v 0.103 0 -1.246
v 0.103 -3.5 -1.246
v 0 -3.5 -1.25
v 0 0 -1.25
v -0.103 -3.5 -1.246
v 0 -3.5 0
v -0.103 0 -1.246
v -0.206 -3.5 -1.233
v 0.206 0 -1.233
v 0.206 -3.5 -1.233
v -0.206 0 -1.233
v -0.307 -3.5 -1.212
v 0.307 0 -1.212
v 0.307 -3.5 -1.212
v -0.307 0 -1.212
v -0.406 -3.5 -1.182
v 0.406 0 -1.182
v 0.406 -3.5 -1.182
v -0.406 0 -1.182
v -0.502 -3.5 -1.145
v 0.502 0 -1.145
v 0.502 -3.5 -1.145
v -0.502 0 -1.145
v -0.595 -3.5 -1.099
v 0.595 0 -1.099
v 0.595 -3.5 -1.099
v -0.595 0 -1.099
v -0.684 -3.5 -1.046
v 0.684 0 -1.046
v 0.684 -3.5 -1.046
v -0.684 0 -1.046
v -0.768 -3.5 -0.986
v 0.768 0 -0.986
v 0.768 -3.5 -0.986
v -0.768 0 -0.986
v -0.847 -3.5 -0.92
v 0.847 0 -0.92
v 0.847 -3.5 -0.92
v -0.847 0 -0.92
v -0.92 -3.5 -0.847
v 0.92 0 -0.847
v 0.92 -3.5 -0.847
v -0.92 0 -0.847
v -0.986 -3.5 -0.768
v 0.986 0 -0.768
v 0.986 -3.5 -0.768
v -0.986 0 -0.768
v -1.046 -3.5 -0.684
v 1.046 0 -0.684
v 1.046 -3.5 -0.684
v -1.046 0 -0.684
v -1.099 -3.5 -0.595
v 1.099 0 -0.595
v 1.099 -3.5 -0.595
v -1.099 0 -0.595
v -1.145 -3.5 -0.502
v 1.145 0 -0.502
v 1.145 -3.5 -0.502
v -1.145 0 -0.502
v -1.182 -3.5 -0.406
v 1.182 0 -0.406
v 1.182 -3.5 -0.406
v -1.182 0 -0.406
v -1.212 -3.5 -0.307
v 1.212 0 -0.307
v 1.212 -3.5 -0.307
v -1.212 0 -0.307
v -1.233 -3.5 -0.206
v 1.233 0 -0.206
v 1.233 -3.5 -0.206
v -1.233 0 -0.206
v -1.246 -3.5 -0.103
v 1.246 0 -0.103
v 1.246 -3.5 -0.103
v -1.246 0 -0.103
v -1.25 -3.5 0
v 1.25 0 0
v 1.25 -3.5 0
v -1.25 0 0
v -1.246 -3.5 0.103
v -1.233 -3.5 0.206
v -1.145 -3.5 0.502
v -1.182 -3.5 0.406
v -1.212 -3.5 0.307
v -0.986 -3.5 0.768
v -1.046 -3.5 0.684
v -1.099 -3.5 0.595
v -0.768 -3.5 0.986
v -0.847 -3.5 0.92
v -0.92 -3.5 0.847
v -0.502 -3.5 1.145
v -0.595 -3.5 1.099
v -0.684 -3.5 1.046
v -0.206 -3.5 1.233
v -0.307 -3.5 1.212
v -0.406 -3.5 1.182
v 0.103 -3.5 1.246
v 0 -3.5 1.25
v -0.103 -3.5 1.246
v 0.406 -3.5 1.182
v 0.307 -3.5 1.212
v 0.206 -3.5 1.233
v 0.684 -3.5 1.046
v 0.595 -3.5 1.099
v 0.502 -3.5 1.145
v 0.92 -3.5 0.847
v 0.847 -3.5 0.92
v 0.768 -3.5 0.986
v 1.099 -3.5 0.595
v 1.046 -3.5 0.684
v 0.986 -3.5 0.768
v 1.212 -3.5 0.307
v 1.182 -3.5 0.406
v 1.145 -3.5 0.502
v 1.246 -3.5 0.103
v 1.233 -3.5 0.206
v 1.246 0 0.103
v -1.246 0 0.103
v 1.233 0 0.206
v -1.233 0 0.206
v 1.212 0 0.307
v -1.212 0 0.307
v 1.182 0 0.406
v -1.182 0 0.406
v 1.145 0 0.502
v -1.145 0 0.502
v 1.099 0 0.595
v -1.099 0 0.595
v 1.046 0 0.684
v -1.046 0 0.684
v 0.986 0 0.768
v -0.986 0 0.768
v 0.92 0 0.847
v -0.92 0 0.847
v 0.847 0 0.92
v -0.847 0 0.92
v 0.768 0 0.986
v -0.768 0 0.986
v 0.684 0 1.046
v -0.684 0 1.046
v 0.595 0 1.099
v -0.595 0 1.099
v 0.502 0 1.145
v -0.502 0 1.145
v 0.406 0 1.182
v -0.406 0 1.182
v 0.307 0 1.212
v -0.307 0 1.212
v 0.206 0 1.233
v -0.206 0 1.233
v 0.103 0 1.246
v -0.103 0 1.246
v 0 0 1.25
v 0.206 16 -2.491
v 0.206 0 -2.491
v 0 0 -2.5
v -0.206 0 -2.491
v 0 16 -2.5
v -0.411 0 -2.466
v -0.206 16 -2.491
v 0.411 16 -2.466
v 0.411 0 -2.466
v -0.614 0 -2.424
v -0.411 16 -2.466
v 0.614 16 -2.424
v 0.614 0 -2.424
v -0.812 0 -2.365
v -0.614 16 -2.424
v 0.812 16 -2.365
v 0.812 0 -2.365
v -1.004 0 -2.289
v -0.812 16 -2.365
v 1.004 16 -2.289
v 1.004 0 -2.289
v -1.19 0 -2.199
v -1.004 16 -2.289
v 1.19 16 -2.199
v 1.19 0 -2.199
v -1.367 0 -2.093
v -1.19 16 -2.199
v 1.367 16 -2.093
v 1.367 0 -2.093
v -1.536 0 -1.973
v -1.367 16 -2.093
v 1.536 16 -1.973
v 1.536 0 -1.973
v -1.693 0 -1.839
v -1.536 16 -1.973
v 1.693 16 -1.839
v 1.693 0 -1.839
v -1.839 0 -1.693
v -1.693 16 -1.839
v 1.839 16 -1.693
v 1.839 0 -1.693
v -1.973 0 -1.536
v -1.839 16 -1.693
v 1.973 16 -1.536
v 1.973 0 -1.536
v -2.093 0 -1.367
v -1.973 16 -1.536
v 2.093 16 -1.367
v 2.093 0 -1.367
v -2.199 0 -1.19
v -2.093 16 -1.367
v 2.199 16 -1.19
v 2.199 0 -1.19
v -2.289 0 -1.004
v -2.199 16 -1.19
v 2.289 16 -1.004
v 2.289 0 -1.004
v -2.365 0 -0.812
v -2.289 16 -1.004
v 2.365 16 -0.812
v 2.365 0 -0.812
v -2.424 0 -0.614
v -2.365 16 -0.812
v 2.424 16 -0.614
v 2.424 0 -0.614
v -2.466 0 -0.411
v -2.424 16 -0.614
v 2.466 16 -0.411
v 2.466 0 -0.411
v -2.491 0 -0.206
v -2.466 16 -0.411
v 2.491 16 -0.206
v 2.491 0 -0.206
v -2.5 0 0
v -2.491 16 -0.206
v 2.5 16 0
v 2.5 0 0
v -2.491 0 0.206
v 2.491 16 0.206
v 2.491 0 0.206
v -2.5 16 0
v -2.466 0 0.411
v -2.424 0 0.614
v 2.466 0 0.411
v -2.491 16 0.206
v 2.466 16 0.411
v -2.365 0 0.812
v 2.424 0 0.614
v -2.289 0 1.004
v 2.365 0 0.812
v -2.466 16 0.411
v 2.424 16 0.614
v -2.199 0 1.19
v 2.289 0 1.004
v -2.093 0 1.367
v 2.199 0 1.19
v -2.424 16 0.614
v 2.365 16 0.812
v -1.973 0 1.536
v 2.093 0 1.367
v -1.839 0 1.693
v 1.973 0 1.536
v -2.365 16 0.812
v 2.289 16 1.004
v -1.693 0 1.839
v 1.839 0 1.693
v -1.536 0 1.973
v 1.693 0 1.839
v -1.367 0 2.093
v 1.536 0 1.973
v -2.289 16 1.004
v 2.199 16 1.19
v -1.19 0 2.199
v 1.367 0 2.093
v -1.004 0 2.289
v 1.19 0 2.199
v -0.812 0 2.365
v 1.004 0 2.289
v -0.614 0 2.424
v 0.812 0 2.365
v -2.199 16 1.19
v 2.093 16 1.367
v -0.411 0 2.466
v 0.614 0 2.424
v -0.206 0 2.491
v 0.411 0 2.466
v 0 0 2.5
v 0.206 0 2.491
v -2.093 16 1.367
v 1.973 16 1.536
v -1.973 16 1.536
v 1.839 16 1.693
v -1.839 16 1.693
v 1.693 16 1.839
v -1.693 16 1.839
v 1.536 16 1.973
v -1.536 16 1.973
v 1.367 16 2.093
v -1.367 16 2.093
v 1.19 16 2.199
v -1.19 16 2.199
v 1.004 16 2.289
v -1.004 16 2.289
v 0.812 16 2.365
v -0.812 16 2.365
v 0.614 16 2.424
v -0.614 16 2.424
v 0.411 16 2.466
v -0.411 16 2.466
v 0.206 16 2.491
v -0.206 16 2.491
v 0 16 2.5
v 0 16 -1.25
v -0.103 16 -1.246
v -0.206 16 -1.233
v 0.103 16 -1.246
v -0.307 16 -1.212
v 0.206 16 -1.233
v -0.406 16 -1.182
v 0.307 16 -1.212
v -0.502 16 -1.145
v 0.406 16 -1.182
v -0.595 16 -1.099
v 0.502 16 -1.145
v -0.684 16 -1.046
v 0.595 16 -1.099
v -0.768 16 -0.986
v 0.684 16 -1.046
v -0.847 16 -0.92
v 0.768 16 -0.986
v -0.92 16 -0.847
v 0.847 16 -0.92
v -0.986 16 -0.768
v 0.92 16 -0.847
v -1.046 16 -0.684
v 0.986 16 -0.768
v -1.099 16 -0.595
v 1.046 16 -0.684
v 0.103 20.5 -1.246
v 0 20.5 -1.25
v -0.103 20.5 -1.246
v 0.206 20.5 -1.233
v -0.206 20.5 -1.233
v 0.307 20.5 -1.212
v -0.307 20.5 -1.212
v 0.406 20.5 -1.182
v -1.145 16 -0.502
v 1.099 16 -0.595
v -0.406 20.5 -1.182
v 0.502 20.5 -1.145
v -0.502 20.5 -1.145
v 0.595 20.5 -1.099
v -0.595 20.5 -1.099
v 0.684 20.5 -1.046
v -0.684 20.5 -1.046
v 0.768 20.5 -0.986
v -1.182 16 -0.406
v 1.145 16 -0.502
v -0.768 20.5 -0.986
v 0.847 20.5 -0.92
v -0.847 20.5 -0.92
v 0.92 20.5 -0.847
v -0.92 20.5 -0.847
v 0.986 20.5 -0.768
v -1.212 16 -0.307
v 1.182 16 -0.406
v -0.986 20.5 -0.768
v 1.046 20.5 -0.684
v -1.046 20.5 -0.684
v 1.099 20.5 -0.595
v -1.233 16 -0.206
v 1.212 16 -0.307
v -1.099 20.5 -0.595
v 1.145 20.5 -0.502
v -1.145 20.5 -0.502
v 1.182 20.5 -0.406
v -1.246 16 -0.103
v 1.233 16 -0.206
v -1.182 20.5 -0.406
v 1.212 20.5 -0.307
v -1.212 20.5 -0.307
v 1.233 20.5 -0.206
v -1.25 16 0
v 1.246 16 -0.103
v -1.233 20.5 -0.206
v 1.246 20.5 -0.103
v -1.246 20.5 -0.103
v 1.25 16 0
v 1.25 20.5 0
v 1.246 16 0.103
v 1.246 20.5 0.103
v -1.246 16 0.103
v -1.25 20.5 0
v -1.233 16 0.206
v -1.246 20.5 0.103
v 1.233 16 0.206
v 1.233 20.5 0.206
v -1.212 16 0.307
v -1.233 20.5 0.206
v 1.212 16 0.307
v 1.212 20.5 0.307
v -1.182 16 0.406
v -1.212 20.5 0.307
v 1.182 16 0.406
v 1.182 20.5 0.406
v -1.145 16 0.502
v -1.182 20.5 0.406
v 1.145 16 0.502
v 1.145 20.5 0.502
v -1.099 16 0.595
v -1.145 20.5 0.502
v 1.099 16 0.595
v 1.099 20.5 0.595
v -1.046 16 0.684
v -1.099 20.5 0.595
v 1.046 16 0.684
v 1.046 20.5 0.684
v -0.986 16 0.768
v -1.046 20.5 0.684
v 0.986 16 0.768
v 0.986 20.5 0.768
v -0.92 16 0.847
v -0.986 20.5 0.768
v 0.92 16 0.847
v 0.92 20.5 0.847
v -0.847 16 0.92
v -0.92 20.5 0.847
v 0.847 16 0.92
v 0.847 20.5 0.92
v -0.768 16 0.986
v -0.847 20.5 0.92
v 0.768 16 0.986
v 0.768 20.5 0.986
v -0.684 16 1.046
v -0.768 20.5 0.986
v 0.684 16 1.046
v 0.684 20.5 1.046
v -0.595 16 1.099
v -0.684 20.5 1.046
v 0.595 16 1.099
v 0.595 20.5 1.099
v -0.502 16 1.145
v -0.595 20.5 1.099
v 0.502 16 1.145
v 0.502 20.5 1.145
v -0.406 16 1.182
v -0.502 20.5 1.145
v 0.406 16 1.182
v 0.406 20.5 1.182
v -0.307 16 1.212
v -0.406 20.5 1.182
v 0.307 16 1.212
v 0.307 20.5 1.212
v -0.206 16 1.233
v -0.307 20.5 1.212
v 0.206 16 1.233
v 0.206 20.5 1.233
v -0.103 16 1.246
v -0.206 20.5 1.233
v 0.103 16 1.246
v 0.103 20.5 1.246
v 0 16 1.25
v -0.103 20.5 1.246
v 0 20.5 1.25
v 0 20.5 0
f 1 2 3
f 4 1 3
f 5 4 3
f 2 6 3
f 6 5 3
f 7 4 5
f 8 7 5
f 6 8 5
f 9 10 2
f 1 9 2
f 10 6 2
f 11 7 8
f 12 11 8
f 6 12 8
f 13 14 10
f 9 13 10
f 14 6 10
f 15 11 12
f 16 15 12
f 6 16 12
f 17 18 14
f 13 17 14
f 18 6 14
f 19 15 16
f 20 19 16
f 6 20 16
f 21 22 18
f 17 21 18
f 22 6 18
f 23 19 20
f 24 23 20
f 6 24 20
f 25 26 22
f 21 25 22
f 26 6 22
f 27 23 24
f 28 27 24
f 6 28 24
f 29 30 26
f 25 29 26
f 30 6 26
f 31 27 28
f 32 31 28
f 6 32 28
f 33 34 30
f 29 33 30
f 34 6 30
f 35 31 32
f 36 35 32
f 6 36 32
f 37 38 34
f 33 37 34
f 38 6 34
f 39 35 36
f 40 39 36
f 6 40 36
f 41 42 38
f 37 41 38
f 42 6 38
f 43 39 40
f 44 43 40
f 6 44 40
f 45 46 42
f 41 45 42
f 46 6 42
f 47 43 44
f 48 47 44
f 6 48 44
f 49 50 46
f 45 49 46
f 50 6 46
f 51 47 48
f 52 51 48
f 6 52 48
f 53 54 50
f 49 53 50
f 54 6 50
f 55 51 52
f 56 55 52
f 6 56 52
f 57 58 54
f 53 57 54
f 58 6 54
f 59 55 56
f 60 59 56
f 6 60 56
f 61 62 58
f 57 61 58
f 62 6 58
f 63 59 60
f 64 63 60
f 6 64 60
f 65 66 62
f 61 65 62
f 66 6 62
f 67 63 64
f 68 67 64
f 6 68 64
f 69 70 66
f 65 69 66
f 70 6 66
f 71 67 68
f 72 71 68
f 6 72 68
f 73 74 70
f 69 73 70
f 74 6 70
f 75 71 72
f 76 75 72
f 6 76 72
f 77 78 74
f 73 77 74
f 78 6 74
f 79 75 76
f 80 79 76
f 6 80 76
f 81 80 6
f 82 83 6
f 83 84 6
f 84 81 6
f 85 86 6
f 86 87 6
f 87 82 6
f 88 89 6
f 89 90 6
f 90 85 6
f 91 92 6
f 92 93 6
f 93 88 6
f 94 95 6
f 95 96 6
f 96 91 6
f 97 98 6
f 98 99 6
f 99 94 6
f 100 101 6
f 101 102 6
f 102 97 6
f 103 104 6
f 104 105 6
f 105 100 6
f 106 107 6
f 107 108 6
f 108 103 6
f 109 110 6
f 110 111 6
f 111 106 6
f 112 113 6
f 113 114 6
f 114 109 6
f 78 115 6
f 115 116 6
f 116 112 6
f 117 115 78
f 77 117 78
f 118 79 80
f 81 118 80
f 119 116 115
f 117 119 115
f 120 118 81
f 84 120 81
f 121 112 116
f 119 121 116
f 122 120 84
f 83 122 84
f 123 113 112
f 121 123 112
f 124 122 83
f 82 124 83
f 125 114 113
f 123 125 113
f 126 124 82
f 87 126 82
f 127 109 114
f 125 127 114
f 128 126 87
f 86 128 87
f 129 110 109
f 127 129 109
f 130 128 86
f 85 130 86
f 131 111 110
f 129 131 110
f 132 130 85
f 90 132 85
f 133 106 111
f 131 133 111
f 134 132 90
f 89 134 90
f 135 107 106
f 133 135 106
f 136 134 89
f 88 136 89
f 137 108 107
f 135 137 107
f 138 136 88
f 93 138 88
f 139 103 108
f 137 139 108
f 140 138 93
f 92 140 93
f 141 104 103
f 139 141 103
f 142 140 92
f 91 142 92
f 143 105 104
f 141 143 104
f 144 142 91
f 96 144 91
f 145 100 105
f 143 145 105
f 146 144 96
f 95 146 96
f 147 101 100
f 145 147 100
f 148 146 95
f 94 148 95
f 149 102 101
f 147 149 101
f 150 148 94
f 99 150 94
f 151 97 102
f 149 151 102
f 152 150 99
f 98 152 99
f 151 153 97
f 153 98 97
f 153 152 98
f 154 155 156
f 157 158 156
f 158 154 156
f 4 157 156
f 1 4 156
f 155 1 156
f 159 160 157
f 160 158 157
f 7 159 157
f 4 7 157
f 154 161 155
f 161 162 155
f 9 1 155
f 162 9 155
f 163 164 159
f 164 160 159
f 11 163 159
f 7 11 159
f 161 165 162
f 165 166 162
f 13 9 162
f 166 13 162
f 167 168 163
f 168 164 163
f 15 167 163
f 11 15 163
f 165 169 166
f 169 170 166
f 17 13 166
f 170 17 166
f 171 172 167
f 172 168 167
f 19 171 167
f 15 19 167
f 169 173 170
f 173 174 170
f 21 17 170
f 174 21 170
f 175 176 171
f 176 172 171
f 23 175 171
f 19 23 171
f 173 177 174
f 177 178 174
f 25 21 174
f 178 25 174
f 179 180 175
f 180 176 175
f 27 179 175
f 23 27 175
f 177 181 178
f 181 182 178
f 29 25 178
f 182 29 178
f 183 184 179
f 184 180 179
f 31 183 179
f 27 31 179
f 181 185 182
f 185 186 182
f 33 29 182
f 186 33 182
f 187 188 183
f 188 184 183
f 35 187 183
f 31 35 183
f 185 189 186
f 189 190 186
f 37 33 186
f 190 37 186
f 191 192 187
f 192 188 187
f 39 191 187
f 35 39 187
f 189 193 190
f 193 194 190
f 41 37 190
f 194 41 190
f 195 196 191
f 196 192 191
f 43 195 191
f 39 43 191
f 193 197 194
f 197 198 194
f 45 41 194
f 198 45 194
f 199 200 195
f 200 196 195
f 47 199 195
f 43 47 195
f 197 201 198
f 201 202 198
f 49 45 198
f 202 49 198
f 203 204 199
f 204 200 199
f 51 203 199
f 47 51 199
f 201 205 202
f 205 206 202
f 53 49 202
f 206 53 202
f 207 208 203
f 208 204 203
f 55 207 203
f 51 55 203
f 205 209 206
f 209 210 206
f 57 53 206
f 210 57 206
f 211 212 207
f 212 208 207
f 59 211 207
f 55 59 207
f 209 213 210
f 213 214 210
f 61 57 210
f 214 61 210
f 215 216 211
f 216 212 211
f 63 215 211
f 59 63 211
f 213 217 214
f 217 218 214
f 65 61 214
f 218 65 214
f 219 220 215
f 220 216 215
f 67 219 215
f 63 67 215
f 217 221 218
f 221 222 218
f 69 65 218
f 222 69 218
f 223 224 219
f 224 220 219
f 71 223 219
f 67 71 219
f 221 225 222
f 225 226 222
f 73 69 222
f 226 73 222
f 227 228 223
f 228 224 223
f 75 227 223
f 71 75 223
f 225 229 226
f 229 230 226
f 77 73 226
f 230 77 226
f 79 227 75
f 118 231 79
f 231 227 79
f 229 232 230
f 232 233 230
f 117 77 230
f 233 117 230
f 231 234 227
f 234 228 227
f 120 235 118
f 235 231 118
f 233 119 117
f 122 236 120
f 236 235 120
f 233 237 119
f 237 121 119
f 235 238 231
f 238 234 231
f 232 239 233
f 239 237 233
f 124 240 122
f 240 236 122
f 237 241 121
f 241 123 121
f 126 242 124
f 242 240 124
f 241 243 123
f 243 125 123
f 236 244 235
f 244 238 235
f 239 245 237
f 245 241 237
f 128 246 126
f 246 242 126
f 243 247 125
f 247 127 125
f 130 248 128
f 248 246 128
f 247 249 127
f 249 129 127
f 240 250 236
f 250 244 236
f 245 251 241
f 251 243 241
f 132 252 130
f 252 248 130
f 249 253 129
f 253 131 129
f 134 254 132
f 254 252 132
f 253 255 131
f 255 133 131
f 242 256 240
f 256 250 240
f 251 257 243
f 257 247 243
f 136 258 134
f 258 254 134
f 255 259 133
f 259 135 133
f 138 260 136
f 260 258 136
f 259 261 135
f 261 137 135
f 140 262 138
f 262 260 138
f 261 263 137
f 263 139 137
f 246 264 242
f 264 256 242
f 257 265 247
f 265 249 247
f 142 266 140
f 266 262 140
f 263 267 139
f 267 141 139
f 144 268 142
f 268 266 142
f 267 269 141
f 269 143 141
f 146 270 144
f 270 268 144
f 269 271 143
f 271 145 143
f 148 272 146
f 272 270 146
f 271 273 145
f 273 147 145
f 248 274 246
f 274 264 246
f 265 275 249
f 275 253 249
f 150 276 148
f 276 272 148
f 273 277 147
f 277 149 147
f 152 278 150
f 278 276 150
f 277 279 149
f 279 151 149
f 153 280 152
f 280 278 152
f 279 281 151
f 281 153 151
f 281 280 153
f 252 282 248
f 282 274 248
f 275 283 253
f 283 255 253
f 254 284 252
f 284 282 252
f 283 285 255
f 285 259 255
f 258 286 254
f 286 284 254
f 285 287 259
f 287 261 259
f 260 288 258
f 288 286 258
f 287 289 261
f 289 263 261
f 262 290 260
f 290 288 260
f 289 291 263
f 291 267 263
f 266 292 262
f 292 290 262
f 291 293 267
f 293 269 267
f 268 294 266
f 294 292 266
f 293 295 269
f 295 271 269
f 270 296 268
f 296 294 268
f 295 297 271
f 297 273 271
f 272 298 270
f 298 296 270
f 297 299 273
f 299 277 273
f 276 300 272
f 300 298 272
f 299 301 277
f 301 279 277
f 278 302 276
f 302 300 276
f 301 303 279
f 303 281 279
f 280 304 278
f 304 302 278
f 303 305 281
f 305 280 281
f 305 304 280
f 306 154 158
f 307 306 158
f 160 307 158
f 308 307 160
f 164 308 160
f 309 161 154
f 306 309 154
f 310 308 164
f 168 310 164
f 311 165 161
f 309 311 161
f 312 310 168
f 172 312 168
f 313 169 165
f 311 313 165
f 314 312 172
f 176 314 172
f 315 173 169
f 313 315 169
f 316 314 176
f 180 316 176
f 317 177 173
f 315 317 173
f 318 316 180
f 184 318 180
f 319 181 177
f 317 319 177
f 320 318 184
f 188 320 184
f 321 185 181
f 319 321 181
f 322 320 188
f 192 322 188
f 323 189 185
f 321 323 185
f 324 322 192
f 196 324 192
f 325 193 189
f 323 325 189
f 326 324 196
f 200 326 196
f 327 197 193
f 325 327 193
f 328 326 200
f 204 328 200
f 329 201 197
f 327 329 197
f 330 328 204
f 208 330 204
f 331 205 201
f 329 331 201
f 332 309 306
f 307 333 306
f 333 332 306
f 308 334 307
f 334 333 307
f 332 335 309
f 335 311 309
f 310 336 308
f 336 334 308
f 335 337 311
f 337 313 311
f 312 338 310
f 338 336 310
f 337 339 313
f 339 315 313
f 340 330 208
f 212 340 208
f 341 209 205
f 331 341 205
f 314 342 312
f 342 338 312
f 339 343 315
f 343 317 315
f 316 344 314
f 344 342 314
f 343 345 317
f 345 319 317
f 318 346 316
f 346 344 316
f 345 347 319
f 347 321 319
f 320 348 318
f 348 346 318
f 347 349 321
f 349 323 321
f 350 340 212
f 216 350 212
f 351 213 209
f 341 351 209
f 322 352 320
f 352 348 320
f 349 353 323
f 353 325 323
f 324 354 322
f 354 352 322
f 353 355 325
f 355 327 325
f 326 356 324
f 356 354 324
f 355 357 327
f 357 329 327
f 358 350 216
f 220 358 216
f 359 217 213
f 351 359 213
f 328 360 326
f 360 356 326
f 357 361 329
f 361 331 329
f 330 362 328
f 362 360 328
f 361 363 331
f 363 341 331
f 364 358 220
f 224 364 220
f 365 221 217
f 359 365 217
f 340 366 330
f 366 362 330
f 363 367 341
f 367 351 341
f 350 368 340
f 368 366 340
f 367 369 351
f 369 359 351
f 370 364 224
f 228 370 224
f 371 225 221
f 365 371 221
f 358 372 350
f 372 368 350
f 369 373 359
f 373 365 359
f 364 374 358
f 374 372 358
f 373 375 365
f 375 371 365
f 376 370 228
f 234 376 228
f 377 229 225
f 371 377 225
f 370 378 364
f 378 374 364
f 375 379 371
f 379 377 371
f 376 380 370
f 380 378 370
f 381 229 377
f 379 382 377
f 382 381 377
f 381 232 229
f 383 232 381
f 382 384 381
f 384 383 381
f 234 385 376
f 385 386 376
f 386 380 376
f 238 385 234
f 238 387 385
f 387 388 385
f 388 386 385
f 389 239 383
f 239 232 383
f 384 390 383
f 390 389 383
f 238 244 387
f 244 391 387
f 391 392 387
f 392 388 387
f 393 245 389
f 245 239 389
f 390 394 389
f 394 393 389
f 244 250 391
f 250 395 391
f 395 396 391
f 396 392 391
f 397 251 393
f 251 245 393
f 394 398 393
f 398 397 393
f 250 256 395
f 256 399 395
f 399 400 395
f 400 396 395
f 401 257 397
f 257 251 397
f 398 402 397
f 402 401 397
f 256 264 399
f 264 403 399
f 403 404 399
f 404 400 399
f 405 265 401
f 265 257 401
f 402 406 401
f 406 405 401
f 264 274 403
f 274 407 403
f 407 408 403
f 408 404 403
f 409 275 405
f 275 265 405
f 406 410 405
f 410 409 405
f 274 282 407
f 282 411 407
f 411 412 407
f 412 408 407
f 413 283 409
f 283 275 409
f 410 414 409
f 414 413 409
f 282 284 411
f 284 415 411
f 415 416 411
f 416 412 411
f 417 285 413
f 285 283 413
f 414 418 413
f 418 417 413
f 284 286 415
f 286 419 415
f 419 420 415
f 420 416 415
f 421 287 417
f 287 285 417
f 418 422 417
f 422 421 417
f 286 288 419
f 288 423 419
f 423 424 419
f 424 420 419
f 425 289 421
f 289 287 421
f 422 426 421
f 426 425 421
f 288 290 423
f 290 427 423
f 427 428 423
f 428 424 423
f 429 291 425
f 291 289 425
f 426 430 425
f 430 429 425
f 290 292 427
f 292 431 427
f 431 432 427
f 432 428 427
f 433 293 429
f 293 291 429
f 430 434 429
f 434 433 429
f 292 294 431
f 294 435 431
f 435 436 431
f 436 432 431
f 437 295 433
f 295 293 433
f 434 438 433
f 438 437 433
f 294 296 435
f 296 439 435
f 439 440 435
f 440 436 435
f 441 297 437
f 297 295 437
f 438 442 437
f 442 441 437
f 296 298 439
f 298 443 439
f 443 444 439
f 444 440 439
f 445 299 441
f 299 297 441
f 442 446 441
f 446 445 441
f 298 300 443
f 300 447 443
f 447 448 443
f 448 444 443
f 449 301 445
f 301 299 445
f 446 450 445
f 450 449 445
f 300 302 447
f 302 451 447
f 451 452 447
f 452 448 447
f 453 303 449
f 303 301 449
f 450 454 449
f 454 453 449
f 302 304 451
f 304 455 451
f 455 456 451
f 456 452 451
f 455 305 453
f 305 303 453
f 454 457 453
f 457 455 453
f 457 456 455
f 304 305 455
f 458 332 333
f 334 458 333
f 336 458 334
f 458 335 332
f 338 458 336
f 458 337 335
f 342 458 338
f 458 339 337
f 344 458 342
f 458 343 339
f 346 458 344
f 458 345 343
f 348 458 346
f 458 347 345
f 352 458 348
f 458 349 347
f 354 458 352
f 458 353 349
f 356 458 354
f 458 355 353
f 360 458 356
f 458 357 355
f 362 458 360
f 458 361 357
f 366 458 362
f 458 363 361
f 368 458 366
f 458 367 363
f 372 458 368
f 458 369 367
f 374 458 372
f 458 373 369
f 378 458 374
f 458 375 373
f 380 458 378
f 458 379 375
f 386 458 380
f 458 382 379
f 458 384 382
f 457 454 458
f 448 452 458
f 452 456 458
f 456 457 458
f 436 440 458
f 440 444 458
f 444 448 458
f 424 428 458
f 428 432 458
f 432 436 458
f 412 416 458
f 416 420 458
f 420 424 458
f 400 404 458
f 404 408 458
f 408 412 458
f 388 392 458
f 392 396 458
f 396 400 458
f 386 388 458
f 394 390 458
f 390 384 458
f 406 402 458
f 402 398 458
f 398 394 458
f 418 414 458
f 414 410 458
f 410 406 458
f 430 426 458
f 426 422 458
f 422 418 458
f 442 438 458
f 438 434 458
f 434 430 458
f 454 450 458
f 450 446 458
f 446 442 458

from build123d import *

# Parameters (mm, degrees)
SKETCH1_R           = 2.5
BOSS_EXTRUDE1_DEPTH = 16
SKETCH2_R           = 1.25
BOSS_EXTRUDE2_DEPTH = 4.5
BOSS_EXTRUDE3_START = 3.5
SKETCH3_R           = 1.25
BOSS_EXTRUDE3_DEPTH = 3.5


with BuildPart() as part:
    # Sketch1 → Boss-Extrude1 (new body)
    with BuildSketch(Plane(origin=(0, 0, 0), x_dir=(1, 0, 0), z_dir=(0, 1, 0))):
        with Locations(Location((0, 0, 0), (0, 0, 270))):
            Circle(SKETCH1_R)
    extrude(amount=BOSS_EXTRUDE1_DEPTH)

    # Sketch2 → Boss-Extrude2 (add)
    with BuildSketch(Plane(origin=(0, 16, 0), x_dir=(1, 0, 0), z_dir=(0, 1, 0))):
        with Locations(Location((0, 0, 0), (0, 0, 270))):
            Circle(SKETCH2_R)
    extrude(amount=BOSS_EXTRUDE2_DEPTH)

    # Sketch3 → Boss-Extrude3 (add)
    with BuildSketch(Plane(origin=(0, 0, 0), x_dir=(-1, 0, 0), z_dir=(0, -1, 0)).offset(BOSS_EXTRUDE3_START)):
        with Locations(Location((0, 0, 0), (0, 0, 270))):
            Circle(SKETCH3_R)
    extrude(amount=-BOSS_EXTRUDE3_DEPTH)


solid = part.part
